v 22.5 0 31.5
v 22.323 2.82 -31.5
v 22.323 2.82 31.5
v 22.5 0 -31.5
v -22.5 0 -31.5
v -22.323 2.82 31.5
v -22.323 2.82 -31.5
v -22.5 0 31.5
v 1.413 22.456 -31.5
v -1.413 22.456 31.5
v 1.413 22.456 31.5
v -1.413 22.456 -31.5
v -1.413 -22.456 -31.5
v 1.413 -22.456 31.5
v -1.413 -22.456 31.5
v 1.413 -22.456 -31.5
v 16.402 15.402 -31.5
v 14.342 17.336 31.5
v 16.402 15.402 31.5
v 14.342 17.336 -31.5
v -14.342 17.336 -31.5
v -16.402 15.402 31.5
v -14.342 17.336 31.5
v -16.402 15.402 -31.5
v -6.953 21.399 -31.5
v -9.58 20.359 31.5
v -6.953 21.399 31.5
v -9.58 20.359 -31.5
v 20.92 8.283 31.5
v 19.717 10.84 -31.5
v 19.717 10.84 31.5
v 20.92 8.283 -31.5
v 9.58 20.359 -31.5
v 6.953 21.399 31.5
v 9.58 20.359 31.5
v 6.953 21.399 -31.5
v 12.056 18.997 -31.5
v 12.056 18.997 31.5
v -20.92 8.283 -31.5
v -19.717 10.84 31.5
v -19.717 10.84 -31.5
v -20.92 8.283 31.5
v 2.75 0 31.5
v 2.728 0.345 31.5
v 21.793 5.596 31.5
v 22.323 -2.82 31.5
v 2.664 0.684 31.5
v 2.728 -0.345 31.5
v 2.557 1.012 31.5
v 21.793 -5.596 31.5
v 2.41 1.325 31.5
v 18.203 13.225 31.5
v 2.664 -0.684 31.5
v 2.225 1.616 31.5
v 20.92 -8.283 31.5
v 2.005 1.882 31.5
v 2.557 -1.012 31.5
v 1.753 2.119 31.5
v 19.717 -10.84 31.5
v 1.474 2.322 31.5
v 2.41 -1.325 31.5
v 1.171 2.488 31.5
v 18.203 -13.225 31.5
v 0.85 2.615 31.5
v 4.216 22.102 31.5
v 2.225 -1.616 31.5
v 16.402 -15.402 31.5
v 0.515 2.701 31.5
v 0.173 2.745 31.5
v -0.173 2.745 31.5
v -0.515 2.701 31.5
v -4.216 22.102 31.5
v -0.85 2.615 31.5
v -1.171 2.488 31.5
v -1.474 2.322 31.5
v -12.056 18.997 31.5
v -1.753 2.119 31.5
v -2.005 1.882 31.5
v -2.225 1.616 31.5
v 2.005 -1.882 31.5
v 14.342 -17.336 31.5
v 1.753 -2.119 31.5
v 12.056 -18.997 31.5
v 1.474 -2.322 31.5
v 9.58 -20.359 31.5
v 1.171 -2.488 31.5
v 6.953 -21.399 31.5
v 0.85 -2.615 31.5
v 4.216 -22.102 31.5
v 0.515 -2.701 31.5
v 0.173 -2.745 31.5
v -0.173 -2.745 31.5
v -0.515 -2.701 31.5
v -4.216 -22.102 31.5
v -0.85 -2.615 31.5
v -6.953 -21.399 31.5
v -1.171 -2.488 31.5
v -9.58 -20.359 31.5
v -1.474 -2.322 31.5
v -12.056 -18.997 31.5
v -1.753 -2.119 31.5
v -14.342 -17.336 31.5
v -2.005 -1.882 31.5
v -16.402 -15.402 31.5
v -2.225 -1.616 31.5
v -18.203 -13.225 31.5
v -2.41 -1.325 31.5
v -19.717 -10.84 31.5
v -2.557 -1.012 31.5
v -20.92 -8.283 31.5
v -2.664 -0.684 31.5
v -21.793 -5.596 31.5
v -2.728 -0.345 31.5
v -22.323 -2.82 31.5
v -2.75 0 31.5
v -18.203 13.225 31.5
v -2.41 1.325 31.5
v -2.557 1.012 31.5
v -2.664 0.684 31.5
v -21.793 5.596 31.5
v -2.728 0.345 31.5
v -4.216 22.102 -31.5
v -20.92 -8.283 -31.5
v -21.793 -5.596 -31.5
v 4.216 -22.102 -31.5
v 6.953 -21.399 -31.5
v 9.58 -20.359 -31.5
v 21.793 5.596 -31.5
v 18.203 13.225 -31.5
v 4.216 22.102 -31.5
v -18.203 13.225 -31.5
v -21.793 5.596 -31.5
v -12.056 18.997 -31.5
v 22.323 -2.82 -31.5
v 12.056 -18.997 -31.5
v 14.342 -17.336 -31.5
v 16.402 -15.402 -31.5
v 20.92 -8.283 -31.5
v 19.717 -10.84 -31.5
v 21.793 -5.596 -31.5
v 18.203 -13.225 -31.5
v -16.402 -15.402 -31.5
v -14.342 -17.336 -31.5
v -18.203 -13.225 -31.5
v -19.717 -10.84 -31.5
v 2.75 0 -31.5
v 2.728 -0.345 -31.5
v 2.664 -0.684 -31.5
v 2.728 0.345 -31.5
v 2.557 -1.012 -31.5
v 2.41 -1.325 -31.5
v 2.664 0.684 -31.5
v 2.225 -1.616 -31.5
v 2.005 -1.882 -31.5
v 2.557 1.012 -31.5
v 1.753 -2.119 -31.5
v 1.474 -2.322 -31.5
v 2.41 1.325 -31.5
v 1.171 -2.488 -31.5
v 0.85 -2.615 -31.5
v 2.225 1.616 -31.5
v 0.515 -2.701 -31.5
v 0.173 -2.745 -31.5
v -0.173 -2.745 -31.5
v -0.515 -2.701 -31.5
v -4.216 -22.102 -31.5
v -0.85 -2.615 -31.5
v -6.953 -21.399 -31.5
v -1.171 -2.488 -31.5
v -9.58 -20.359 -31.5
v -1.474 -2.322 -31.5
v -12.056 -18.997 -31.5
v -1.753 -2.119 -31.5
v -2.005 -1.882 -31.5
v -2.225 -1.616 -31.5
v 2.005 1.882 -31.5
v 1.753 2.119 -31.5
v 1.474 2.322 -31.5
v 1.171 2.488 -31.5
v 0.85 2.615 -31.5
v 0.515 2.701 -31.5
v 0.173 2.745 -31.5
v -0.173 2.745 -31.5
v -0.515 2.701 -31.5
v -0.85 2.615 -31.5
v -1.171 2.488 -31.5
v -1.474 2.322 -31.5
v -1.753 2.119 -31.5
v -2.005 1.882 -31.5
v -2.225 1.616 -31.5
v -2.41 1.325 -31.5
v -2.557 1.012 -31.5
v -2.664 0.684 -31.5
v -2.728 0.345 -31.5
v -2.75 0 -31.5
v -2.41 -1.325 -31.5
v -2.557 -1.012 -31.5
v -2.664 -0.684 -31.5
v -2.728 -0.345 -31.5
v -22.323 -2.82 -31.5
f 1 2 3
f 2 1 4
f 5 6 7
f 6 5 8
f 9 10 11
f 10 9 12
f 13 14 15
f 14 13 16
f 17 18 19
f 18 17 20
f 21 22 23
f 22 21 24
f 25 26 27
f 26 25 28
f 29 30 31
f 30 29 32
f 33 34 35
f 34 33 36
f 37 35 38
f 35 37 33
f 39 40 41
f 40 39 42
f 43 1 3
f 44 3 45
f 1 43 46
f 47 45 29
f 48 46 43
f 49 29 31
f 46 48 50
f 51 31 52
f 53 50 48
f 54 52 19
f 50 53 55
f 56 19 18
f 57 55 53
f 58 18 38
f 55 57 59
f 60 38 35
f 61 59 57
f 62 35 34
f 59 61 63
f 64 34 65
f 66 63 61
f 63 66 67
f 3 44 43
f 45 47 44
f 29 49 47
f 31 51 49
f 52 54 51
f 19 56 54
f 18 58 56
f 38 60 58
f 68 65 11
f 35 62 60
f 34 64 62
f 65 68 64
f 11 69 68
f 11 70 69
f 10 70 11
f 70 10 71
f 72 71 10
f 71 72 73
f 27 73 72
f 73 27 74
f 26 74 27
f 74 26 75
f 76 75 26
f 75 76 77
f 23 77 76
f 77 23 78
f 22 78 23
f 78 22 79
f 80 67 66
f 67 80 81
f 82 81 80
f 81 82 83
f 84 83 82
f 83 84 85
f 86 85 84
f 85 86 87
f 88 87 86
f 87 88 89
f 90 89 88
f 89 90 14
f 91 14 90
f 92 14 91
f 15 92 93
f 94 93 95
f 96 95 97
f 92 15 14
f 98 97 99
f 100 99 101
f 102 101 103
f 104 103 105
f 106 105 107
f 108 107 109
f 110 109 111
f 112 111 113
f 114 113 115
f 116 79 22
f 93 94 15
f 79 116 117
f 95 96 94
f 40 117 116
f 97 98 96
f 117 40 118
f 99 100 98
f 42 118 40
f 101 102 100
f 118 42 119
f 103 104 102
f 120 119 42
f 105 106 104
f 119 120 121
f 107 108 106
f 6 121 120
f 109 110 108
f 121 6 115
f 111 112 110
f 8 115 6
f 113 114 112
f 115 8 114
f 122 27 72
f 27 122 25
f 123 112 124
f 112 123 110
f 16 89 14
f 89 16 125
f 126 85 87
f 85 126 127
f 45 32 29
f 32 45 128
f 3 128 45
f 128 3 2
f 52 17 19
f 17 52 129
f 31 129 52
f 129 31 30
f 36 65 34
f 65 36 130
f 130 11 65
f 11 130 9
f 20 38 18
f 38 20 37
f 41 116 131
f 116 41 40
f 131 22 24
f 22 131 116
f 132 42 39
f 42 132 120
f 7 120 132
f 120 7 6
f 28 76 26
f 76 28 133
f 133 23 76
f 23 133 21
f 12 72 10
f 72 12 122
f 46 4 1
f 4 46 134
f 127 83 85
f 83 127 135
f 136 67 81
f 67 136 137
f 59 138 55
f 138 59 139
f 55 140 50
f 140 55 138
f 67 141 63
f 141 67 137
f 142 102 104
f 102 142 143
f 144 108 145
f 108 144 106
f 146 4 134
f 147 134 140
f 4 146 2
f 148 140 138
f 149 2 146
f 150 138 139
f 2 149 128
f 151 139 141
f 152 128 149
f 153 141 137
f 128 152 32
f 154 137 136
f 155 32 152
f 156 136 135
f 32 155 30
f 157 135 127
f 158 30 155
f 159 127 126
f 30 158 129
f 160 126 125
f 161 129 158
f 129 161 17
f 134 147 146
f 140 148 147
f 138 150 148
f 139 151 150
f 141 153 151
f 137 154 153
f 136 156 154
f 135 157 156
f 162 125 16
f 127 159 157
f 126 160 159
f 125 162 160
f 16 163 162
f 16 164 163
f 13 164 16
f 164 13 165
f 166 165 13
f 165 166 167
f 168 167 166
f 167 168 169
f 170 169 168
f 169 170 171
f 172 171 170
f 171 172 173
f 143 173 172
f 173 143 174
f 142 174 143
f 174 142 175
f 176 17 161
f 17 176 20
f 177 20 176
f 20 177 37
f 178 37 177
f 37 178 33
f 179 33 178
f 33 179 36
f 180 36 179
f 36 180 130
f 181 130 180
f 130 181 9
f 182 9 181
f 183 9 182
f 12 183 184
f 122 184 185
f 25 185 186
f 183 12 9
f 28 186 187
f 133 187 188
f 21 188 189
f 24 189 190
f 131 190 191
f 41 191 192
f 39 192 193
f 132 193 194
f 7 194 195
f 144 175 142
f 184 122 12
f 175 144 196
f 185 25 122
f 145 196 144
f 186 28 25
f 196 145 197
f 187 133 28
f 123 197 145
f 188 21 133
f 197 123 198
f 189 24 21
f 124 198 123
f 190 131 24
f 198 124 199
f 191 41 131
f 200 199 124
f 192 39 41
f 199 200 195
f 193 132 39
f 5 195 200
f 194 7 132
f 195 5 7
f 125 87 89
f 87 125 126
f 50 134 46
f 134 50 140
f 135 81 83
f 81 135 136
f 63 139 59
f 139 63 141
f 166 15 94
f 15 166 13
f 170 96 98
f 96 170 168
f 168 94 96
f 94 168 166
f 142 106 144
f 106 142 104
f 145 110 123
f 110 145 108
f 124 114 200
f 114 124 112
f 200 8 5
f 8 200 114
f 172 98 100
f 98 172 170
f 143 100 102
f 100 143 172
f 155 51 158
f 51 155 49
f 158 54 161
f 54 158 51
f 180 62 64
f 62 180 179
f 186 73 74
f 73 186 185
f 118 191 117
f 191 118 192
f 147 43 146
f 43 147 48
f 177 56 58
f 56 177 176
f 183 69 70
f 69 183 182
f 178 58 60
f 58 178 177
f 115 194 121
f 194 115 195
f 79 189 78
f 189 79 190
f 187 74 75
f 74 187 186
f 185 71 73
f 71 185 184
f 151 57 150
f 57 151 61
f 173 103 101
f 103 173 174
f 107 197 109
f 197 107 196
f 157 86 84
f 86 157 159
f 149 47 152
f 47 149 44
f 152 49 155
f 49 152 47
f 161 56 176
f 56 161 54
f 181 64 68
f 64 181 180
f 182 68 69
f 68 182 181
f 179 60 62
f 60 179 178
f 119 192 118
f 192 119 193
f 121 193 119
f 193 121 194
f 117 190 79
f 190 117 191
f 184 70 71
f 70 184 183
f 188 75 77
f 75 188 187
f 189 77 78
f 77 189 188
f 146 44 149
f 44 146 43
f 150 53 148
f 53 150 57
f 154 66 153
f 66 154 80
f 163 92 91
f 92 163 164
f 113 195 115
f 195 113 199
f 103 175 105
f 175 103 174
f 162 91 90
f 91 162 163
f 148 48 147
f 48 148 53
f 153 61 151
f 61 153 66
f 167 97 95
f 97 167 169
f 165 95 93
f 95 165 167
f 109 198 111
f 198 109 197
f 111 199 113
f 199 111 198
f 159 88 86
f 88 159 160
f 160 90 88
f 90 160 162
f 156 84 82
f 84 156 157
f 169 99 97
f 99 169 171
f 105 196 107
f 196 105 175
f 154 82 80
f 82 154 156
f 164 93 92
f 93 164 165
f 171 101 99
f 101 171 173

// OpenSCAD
$fn = 50;


difference() {
	union() {
		translate(v = [0, 0, -31.5000000000]) {
			cylinder(h = 63, r = 22.5000000000);
		}
	}
	union() {
		translate(v = [0, 0, -100.0000000000]) {
			cylinder(h = 200, r = 2.7500000000);
		}
	}
}
